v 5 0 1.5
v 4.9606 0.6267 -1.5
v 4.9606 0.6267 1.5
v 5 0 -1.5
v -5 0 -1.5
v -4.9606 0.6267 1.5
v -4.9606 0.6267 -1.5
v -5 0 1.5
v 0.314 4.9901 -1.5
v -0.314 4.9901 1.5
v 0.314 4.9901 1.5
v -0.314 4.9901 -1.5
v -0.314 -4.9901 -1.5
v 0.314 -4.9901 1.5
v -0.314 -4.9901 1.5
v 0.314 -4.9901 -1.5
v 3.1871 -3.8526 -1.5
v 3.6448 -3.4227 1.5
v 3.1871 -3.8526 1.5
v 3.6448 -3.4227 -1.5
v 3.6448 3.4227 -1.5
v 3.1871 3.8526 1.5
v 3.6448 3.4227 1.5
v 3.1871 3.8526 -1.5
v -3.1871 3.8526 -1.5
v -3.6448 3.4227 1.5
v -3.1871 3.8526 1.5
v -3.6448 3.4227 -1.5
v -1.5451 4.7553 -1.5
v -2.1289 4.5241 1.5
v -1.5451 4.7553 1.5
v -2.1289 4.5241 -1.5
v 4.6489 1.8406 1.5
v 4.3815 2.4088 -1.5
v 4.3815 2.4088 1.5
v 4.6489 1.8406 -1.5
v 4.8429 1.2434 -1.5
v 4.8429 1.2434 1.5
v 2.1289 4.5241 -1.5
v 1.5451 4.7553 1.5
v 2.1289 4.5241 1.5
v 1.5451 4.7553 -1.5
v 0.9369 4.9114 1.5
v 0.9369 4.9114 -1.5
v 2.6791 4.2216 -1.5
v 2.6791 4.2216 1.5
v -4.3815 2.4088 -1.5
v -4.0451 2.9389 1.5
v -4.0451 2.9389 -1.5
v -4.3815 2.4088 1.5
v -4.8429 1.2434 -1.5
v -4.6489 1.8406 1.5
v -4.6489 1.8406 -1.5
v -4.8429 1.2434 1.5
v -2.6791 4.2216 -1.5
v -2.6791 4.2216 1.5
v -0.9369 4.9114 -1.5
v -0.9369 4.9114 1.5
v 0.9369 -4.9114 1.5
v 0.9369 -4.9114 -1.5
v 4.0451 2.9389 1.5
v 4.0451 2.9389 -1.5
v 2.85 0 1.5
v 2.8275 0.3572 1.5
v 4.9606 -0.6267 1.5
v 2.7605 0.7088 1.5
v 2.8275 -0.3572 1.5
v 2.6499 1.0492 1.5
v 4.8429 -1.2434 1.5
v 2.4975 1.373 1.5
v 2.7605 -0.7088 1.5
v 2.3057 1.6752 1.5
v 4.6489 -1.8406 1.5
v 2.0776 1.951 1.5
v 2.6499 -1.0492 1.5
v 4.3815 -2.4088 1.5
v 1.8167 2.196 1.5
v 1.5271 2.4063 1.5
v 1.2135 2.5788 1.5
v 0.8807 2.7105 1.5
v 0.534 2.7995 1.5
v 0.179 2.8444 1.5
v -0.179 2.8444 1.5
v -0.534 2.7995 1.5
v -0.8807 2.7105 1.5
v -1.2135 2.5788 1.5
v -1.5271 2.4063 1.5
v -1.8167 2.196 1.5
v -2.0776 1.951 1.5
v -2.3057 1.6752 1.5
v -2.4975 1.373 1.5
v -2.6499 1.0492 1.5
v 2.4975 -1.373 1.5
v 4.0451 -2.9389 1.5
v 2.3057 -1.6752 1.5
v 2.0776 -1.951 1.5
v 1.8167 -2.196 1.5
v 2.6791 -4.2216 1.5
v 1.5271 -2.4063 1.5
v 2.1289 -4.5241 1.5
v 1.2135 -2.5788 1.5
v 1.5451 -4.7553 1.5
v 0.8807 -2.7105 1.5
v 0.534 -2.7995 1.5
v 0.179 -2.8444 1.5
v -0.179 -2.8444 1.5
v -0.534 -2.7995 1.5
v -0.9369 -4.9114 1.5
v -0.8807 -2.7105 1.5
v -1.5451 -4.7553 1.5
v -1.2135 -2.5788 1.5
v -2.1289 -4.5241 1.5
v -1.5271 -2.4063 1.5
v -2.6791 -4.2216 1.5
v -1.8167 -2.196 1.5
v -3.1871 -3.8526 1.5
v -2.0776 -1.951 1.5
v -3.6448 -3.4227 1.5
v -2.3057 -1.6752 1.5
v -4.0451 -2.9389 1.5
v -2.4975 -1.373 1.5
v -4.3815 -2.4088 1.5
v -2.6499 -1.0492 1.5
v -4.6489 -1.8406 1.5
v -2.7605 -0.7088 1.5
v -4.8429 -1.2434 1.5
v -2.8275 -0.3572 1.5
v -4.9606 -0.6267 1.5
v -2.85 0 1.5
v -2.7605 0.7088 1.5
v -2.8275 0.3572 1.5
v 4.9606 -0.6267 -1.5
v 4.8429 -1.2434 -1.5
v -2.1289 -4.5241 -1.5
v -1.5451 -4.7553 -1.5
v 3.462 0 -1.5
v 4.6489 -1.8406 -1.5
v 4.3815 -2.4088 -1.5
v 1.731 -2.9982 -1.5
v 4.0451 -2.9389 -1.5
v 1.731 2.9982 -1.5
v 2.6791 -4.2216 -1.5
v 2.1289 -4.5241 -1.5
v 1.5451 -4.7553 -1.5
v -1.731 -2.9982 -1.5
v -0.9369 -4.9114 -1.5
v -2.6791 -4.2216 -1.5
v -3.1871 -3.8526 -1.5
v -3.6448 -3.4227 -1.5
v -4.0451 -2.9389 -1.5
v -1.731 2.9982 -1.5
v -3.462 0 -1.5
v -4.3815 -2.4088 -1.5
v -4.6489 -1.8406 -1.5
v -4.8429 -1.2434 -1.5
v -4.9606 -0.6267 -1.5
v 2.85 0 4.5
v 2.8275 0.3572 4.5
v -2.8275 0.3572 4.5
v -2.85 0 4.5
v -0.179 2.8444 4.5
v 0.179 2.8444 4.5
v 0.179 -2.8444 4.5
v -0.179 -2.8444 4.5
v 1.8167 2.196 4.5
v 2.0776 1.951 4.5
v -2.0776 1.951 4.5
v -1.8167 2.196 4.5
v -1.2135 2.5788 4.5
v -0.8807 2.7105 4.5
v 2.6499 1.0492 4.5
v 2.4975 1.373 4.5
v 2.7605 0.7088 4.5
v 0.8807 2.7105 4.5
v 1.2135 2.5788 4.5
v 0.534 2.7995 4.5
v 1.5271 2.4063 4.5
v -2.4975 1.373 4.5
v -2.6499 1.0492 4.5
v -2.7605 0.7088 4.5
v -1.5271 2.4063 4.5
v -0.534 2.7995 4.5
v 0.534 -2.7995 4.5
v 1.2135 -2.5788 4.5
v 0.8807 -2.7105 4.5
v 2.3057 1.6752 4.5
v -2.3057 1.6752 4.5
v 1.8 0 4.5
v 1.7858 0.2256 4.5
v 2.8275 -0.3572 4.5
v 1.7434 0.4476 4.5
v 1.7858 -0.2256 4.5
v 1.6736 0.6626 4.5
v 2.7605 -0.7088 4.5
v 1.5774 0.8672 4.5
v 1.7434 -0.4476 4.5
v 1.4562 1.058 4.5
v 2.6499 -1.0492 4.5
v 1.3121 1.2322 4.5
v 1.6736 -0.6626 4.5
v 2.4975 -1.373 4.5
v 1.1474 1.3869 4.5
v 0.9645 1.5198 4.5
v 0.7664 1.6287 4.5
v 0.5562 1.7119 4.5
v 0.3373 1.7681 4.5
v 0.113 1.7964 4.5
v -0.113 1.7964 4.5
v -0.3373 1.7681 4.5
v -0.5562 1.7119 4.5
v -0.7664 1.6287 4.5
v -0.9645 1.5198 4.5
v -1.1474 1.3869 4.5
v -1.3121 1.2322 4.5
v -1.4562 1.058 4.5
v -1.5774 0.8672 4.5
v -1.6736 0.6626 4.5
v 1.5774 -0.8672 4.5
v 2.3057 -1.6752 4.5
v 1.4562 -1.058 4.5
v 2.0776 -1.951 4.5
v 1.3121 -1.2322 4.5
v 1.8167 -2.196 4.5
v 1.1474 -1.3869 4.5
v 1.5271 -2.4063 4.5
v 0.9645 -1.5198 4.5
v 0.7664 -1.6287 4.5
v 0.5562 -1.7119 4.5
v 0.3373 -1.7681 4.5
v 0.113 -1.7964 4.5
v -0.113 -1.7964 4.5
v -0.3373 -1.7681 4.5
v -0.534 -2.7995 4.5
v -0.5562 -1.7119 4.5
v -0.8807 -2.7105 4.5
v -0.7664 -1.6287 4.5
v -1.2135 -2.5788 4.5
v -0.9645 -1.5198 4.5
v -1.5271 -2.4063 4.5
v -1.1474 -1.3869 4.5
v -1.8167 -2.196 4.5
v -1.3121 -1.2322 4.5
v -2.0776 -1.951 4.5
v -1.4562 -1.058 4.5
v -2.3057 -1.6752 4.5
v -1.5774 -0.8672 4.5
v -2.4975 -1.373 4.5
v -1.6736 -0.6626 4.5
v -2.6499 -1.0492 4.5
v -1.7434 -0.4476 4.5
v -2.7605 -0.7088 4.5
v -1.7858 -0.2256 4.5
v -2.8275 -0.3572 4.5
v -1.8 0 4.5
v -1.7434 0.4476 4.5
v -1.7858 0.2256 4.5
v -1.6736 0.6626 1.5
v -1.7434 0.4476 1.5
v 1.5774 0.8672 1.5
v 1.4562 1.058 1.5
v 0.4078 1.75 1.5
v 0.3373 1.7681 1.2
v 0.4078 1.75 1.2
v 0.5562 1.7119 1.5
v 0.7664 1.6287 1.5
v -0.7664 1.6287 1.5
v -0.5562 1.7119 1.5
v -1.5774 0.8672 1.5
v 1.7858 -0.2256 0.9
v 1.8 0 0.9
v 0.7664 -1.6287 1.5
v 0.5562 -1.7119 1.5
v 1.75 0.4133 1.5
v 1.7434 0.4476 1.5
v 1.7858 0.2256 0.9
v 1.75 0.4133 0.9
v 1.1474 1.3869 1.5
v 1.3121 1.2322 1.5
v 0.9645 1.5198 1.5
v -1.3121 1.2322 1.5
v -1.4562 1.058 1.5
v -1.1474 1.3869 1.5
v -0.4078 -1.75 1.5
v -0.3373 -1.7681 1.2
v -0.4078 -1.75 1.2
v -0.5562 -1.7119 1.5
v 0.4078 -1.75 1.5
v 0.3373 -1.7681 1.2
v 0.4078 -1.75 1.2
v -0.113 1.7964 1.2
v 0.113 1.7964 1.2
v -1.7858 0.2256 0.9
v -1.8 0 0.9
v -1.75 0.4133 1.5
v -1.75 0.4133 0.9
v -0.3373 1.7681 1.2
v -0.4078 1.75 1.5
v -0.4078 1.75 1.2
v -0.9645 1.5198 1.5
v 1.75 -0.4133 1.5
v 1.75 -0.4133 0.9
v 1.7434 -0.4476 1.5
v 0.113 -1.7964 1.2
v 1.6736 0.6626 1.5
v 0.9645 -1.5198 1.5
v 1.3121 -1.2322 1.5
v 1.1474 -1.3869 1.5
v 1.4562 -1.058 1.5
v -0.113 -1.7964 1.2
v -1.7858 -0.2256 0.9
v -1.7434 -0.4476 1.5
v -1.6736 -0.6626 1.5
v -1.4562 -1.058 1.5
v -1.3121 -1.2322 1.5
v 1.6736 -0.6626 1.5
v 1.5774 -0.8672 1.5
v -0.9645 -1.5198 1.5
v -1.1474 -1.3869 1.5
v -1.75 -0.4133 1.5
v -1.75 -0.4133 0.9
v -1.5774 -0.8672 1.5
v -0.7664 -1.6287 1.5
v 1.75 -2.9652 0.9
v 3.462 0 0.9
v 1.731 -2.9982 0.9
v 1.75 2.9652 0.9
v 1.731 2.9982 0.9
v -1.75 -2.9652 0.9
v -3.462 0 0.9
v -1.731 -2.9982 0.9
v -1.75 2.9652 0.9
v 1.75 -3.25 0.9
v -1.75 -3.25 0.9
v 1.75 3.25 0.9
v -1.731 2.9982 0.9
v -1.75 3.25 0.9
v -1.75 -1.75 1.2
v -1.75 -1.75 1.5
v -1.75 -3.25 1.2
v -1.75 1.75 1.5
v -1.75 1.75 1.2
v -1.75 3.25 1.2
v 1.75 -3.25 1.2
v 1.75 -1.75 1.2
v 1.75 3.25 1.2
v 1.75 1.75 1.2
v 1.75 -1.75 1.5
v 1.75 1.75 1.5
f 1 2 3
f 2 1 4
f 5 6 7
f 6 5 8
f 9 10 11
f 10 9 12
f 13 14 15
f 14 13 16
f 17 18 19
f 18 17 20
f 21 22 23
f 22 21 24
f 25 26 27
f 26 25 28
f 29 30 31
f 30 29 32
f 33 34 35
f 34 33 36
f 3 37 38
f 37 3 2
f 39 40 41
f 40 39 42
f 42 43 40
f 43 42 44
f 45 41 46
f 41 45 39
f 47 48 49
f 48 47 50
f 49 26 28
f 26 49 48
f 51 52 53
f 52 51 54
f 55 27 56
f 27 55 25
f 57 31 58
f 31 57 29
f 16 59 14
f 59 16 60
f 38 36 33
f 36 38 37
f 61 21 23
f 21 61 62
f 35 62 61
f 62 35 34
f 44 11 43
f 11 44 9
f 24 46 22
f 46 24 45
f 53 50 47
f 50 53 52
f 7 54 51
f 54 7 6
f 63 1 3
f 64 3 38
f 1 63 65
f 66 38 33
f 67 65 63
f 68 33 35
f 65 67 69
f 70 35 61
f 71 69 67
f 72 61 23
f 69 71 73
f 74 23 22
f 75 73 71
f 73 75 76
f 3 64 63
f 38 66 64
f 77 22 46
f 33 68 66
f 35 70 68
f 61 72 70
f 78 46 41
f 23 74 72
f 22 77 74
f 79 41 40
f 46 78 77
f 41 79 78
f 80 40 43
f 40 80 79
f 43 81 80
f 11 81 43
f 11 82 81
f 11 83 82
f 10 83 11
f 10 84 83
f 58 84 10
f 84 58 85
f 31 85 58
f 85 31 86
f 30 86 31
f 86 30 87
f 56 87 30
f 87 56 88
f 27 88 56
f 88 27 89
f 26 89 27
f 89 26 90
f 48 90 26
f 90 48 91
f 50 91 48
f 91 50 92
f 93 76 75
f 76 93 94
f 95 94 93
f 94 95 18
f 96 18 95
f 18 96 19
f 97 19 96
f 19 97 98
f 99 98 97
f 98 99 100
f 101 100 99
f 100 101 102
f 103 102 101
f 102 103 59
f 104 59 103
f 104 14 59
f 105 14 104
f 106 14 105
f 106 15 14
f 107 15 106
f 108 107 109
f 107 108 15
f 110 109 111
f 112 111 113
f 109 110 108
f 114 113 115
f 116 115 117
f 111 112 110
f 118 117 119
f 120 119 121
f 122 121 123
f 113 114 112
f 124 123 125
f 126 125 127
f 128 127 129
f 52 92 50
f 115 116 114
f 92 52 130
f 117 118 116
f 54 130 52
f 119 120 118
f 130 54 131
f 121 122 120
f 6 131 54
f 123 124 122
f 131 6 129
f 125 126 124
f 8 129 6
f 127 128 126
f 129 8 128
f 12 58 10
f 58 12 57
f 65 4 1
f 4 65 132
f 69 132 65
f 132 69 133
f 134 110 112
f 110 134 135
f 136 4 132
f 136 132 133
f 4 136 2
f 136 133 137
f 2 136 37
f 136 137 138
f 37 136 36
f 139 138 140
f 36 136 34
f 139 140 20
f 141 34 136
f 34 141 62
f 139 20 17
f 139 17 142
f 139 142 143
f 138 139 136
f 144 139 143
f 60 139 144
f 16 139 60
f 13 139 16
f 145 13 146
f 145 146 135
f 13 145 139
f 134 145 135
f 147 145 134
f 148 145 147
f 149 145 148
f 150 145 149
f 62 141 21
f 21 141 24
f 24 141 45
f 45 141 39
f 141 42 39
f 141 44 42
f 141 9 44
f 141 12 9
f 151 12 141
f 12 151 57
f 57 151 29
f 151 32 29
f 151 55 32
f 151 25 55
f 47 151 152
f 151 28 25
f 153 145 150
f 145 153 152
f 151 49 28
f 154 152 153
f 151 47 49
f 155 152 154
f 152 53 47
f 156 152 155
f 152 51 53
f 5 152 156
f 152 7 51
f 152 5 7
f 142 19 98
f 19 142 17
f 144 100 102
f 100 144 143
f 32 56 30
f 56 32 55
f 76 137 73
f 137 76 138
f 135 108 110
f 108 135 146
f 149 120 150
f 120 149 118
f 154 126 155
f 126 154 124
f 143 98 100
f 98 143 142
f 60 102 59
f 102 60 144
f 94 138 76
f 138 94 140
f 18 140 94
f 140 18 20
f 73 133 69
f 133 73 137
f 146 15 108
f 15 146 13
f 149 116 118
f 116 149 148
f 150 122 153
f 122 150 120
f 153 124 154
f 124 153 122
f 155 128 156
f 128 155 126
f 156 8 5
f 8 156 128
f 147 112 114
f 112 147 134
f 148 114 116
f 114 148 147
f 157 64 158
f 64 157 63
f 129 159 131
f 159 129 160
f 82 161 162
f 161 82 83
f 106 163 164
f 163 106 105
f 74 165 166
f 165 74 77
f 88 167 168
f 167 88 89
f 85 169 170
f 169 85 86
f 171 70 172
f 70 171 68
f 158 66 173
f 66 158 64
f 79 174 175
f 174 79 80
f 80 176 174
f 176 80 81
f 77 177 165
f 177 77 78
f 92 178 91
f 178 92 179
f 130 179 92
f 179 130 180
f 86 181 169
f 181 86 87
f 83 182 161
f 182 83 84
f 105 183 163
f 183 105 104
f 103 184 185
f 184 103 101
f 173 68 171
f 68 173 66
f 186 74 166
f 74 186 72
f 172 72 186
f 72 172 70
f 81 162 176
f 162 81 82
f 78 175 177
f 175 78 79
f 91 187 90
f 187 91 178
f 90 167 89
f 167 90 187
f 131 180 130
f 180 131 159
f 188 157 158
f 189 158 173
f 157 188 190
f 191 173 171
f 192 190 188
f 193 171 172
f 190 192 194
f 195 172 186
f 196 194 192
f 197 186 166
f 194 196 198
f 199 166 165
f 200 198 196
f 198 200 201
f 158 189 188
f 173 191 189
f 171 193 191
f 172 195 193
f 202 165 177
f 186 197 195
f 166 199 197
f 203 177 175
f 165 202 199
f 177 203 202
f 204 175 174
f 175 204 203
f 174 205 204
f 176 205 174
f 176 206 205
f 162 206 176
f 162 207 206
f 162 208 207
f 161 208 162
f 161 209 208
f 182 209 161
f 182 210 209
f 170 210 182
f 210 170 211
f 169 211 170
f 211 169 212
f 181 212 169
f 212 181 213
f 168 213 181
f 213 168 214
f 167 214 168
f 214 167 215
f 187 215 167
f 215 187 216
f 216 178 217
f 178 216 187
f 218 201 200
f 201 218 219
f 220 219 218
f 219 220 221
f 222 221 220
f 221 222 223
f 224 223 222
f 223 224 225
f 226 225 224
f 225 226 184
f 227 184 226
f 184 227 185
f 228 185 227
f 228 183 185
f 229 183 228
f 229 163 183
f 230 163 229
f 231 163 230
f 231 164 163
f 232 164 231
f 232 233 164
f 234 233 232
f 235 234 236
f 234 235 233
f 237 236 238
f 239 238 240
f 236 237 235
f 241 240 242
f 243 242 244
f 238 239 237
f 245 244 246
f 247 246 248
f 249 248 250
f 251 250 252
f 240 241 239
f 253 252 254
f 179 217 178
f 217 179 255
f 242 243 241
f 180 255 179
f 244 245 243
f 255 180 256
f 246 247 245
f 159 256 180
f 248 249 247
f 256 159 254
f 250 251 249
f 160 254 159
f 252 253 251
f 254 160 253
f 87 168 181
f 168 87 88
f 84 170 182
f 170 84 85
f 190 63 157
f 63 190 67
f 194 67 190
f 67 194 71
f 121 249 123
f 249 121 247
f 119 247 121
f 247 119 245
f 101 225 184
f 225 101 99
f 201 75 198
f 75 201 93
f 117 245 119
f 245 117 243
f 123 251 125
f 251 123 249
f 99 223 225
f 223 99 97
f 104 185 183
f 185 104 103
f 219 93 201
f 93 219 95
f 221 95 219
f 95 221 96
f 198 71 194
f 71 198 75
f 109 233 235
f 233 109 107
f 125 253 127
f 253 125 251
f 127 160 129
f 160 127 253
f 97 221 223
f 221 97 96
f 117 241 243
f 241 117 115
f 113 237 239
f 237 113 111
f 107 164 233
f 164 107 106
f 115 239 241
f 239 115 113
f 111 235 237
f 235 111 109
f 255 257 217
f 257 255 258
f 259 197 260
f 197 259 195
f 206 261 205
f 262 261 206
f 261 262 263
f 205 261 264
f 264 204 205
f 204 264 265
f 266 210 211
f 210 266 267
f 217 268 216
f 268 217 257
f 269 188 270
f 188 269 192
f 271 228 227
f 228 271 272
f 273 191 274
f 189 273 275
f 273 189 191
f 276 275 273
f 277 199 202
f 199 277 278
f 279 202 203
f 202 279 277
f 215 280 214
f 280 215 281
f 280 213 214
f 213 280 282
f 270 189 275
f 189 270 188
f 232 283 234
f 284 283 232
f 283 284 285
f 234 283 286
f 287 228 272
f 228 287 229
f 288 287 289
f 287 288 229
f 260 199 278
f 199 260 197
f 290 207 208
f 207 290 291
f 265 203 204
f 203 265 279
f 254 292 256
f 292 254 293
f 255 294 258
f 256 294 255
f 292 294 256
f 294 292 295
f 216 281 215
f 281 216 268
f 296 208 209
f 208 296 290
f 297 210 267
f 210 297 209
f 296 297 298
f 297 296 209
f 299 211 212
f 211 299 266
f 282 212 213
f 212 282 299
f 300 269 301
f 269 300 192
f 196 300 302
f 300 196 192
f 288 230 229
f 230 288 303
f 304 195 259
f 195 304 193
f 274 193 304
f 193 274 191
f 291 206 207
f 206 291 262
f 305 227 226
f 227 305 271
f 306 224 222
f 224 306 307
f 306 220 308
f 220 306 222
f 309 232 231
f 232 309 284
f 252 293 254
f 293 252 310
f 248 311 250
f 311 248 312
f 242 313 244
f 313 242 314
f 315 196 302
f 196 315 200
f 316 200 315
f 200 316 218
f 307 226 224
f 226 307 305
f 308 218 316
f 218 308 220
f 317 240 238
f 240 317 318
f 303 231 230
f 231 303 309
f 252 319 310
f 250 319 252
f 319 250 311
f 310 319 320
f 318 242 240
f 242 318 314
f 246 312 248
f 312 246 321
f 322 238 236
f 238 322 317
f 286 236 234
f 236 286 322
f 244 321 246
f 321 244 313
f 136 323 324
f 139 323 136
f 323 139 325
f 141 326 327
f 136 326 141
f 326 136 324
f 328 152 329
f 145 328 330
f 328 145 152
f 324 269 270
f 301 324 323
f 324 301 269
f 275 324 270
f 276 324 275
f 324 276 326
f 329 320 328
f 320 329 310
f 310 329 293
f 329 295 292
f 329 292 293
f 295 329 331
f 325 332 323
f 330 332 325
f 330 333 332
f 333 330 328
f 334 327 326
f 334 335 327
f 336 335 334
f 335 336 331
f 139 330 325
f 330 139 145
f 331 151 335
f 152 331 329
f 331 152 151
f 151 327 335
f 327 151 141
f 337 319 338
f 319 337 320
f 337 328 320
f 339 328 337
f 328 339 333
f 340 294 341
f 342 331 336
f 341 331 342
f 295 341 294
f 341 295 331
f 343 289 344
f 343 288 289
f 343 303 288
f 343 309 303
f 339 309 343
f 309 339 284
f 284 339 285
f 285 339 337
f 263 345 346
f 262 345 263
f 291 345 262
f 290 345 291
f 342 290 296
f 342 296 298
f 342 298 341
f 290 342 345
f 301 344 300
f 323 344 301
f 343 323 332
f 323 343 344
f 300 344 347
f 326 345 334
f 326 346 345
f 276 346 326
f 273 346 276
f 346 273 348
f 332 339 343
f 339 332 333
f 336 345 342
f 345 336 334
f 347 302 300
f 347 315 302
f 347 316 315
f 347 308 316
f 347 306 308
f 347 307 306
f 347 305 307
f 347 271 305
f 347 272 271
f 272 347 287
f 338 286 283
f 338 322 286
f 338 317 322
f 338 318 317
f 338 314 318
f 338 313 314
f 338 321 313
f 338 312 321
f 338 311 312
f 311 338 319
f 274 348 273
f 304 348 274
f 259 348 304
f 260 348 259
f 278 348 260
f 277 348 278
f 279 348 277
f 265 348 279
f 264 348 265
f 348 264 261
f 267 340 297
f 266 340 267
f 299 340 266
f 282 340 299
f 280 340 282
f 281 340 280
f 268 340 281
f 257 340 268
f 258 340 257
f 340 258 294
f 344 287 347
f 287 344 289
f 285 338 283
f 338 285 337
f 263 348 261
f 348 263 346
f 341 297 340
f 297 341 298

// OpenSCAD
$fn = 50;


difference() {
	union() {
		translate(v = [0, 0, -1.5000000000]) {
			rotate(a = [0, 0, 0]) {
				cylinder(h = 3, r = 5.0000000000);
			}
		}
		translate(v = [0, 0, -1.5000000000]) {
			rotate(a = [0, 0, 0]) {
				cylinder(h = 6, r = 2.8500000000);
			}
		}
	}
	union() {
		translate(v = [0, 0, -125.0000000000]) {
			rotate(a = [0, 0, 0]) {
				cylinder(h = 250, r = 1.8000000000);
			}
		}
		translate(v = [0, 0, -2.1000000000]) {
			rotate(a = [0, 0, 0]) {
				#translate(v = [0, 0, 0]) {
					rotate(a = [0, 0, 0]) {
						linear_extrude(height = 3) {
							polygon(points = [[3.4620000000, 0.0000000000], [1.7310000000, 2.9981799479], [-1.7310000000, 2.9981799479], [-3.4620000000, 0.0000000000], [-1.7310000000, -2.9981799479], [1.7310000000, -2.9981799479]]);
						}
					}
				}
			}
		}
		#translate(v = [-1.7500000000, -3.2500000000, 0.9000000000]) {
			rotate(a = [0, 0, 0]) {
				cube(size = [3.5000000000, 6.5000000000, 0.3000000000]);
			}
		}
		#translate(v = [-1.7500000000, -1.7500000000, 1.2000000000]) {
			rotate(a = [0, 0, 0]) {
				cube(size = [3.5000000000, 3.5000000000, 0.3000000000]);
			}
		}
		#translate(v = [-1.7500000000, -3.2500000000, -2.4000000000]) {
			rotate(a = [0, 0, 0]) {
				cube(size = [3.5000000000, 6.5000000000, 0.3000000000]);
			}
		}
		#translate(v = [-1.7500000000, -1.7500000000, -2.7000000000]) {
			rotate(a = [0, 0, 0]) {
				cube(size = [3.5000000000, 3.5000000000, 0.3000000000]);
			}
		}
	}
}
